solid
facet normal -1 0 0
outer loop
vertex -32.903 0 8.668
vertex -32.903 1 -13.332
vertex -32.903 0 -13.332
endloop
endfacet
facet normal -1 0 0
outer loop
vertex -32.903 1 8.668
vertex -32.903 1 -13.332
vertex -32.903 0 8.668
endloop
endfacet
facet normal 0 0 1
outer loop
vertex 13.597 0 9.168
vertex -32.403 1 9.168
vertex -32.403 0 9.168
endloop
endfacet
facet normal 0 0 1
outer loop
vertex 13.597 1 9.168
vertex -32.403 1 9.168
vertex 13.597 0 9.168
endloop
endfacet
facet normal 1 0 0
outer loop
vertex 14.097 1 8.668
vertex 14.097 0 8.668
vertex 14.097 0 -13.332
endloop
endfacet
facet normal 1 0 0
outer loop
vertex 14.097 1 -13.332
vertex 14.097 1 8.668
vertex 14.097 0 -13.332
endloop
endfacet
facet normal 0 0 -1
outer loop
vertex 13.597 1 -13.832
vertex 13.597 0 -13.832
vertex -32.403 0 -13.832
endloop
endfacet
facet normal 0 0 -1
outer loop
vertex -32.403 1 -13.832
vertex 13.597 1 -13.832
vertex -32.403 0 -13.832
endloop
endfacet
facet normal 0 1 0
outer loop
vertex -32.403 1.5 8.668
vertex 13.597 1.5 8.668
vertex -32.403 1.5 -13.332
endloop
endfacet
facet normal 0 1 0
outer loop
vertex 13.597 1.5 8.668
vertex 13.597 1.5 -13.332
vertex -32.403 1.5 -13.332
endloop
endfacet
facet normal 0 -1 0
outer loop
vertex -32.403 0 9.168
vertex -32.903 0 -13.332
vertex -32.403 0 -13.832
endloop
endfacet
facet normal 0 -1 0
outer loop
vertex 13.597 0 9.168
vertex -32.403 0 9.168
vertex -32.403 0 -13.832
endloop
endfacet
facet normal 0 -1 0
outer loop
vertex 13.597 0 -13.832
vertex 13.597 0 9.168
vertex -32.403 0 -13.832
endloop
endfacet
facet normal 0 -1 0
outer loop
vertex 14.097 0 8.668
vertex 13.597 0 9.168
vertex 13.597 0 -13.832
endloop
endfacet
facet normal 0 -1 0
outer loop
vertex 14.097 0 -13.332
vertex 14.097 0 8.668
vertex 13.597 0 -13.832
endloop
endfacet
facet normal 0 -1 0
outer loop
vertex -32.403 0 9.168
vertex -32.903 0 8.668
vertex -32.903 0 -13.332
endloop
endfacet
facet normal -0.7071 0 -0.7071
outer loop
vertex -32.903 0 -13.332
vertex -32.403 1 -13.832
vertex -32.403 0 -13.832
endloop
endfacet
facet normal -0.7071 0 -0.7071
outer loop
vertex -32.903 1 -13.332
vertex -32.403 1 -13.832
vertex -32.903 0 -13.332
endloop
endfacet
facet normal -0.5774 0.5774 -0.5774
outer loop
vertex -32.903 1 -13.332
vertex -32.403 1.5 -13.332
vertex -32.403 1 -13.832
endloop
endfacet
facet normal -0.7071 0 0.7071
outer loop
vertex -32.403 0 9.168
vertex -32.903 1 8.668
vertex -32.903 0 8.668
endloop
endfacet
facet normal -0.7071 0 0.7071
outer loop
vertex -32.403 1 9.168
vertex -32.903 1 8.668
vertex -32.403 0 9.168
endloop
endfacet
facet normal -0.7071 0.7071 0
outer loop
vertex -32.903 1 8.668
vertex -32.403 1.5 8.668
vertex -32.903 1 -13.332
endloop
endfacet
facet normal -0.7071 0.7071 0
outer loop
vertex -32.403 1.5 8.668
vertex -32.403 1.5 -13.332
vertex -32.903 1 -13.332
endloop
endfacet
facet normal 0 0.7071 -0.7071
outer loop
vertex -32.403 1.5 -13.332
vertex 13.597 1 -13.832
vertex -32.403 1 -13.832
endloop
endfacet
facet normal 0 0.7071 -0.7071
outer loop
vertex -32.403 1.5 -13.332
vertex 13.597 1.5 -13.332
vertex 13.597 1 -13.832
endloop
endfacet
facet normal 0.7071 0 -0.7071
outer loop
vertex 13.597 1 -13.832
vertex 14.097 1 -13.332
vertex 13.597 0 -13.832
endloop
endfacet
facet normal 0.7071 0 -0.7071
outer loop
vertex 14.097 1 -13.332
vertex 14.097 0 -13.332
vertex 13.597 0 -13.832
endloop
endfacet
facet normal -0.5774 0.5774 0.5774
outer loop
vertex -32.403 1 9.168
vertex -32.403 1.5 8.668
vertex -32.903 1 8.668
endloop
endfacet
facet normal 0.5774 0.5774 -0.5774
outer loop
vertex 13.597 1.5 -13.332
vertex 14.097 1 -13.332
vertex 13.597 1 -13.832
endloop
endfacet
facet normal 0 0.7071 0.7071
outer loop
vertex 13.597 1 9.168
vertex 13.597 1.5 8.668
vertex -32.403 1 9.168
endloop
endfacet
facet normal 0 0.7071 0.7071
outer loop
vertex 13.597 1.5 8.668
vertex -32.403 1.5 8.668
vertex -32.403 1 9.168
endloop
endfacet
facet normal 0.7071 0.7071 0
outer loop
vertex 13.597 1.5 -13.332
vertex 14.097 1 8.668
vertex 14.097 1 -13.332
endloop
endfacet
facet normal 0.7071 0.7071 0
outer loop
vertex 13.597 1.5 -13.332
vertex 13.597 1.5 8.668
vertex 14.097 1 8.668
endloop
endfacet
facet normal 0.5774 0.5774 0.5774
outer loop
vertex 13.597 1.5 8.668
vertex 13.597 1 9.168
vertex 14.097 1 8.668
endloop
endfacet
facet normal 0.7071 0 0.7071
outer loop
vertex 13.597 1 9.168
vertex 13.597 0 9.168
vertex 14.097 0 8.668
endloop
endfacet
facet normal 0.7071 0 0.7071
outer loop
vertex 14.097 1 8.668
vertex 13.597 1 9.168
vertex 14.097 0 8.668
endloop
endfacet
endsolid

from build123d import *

# Parameters (mm, degrees)
SKETCH1_W           = 47
SKETCH1_H           = 23
BOSS_EXTRUDE1_DEPTH = 1.5
CHAMFER1_SIZE       = 0.5


with BuildPart() as part:
    # Sketch1 → Boss-Extrude1 (new body)
    with BuildSketch(Plane(origin=(0, 0, 0), x_dir=(1, 0, 0), z_dir=(0, 1, 0))):
        with Locations((-9.402777778, 2.331944444)):
            Rectangle(SKETCH1_W, SKETCH1_H)
    extrude(amount=BOSS_EXTRUDE1_DEPTH)

    # Chamfer1
    chamfer1_edges = [part.edges().sort_by_distance(p)[0] for p in [
        (14.097222222, 1.5, -2.331944444),
        (-9.402777778, 1.5, -13.831944444),
        (-32.902777778, 1.5, -2.331944444),
        (-32.902777778, 0.75, -13.831944444),
        (14.097222222, 0.75, -13.831944444),
        (14.097222222, 0.75, 9.168055556),
        (-32.902777778, 0.75, 9.168055556),
        (-9.402777778, 1.5, 9.168055556),
    ]]
    chamfer(chamfer1_edges, length=CHAMFER1_SIZE)


solid = part.part
